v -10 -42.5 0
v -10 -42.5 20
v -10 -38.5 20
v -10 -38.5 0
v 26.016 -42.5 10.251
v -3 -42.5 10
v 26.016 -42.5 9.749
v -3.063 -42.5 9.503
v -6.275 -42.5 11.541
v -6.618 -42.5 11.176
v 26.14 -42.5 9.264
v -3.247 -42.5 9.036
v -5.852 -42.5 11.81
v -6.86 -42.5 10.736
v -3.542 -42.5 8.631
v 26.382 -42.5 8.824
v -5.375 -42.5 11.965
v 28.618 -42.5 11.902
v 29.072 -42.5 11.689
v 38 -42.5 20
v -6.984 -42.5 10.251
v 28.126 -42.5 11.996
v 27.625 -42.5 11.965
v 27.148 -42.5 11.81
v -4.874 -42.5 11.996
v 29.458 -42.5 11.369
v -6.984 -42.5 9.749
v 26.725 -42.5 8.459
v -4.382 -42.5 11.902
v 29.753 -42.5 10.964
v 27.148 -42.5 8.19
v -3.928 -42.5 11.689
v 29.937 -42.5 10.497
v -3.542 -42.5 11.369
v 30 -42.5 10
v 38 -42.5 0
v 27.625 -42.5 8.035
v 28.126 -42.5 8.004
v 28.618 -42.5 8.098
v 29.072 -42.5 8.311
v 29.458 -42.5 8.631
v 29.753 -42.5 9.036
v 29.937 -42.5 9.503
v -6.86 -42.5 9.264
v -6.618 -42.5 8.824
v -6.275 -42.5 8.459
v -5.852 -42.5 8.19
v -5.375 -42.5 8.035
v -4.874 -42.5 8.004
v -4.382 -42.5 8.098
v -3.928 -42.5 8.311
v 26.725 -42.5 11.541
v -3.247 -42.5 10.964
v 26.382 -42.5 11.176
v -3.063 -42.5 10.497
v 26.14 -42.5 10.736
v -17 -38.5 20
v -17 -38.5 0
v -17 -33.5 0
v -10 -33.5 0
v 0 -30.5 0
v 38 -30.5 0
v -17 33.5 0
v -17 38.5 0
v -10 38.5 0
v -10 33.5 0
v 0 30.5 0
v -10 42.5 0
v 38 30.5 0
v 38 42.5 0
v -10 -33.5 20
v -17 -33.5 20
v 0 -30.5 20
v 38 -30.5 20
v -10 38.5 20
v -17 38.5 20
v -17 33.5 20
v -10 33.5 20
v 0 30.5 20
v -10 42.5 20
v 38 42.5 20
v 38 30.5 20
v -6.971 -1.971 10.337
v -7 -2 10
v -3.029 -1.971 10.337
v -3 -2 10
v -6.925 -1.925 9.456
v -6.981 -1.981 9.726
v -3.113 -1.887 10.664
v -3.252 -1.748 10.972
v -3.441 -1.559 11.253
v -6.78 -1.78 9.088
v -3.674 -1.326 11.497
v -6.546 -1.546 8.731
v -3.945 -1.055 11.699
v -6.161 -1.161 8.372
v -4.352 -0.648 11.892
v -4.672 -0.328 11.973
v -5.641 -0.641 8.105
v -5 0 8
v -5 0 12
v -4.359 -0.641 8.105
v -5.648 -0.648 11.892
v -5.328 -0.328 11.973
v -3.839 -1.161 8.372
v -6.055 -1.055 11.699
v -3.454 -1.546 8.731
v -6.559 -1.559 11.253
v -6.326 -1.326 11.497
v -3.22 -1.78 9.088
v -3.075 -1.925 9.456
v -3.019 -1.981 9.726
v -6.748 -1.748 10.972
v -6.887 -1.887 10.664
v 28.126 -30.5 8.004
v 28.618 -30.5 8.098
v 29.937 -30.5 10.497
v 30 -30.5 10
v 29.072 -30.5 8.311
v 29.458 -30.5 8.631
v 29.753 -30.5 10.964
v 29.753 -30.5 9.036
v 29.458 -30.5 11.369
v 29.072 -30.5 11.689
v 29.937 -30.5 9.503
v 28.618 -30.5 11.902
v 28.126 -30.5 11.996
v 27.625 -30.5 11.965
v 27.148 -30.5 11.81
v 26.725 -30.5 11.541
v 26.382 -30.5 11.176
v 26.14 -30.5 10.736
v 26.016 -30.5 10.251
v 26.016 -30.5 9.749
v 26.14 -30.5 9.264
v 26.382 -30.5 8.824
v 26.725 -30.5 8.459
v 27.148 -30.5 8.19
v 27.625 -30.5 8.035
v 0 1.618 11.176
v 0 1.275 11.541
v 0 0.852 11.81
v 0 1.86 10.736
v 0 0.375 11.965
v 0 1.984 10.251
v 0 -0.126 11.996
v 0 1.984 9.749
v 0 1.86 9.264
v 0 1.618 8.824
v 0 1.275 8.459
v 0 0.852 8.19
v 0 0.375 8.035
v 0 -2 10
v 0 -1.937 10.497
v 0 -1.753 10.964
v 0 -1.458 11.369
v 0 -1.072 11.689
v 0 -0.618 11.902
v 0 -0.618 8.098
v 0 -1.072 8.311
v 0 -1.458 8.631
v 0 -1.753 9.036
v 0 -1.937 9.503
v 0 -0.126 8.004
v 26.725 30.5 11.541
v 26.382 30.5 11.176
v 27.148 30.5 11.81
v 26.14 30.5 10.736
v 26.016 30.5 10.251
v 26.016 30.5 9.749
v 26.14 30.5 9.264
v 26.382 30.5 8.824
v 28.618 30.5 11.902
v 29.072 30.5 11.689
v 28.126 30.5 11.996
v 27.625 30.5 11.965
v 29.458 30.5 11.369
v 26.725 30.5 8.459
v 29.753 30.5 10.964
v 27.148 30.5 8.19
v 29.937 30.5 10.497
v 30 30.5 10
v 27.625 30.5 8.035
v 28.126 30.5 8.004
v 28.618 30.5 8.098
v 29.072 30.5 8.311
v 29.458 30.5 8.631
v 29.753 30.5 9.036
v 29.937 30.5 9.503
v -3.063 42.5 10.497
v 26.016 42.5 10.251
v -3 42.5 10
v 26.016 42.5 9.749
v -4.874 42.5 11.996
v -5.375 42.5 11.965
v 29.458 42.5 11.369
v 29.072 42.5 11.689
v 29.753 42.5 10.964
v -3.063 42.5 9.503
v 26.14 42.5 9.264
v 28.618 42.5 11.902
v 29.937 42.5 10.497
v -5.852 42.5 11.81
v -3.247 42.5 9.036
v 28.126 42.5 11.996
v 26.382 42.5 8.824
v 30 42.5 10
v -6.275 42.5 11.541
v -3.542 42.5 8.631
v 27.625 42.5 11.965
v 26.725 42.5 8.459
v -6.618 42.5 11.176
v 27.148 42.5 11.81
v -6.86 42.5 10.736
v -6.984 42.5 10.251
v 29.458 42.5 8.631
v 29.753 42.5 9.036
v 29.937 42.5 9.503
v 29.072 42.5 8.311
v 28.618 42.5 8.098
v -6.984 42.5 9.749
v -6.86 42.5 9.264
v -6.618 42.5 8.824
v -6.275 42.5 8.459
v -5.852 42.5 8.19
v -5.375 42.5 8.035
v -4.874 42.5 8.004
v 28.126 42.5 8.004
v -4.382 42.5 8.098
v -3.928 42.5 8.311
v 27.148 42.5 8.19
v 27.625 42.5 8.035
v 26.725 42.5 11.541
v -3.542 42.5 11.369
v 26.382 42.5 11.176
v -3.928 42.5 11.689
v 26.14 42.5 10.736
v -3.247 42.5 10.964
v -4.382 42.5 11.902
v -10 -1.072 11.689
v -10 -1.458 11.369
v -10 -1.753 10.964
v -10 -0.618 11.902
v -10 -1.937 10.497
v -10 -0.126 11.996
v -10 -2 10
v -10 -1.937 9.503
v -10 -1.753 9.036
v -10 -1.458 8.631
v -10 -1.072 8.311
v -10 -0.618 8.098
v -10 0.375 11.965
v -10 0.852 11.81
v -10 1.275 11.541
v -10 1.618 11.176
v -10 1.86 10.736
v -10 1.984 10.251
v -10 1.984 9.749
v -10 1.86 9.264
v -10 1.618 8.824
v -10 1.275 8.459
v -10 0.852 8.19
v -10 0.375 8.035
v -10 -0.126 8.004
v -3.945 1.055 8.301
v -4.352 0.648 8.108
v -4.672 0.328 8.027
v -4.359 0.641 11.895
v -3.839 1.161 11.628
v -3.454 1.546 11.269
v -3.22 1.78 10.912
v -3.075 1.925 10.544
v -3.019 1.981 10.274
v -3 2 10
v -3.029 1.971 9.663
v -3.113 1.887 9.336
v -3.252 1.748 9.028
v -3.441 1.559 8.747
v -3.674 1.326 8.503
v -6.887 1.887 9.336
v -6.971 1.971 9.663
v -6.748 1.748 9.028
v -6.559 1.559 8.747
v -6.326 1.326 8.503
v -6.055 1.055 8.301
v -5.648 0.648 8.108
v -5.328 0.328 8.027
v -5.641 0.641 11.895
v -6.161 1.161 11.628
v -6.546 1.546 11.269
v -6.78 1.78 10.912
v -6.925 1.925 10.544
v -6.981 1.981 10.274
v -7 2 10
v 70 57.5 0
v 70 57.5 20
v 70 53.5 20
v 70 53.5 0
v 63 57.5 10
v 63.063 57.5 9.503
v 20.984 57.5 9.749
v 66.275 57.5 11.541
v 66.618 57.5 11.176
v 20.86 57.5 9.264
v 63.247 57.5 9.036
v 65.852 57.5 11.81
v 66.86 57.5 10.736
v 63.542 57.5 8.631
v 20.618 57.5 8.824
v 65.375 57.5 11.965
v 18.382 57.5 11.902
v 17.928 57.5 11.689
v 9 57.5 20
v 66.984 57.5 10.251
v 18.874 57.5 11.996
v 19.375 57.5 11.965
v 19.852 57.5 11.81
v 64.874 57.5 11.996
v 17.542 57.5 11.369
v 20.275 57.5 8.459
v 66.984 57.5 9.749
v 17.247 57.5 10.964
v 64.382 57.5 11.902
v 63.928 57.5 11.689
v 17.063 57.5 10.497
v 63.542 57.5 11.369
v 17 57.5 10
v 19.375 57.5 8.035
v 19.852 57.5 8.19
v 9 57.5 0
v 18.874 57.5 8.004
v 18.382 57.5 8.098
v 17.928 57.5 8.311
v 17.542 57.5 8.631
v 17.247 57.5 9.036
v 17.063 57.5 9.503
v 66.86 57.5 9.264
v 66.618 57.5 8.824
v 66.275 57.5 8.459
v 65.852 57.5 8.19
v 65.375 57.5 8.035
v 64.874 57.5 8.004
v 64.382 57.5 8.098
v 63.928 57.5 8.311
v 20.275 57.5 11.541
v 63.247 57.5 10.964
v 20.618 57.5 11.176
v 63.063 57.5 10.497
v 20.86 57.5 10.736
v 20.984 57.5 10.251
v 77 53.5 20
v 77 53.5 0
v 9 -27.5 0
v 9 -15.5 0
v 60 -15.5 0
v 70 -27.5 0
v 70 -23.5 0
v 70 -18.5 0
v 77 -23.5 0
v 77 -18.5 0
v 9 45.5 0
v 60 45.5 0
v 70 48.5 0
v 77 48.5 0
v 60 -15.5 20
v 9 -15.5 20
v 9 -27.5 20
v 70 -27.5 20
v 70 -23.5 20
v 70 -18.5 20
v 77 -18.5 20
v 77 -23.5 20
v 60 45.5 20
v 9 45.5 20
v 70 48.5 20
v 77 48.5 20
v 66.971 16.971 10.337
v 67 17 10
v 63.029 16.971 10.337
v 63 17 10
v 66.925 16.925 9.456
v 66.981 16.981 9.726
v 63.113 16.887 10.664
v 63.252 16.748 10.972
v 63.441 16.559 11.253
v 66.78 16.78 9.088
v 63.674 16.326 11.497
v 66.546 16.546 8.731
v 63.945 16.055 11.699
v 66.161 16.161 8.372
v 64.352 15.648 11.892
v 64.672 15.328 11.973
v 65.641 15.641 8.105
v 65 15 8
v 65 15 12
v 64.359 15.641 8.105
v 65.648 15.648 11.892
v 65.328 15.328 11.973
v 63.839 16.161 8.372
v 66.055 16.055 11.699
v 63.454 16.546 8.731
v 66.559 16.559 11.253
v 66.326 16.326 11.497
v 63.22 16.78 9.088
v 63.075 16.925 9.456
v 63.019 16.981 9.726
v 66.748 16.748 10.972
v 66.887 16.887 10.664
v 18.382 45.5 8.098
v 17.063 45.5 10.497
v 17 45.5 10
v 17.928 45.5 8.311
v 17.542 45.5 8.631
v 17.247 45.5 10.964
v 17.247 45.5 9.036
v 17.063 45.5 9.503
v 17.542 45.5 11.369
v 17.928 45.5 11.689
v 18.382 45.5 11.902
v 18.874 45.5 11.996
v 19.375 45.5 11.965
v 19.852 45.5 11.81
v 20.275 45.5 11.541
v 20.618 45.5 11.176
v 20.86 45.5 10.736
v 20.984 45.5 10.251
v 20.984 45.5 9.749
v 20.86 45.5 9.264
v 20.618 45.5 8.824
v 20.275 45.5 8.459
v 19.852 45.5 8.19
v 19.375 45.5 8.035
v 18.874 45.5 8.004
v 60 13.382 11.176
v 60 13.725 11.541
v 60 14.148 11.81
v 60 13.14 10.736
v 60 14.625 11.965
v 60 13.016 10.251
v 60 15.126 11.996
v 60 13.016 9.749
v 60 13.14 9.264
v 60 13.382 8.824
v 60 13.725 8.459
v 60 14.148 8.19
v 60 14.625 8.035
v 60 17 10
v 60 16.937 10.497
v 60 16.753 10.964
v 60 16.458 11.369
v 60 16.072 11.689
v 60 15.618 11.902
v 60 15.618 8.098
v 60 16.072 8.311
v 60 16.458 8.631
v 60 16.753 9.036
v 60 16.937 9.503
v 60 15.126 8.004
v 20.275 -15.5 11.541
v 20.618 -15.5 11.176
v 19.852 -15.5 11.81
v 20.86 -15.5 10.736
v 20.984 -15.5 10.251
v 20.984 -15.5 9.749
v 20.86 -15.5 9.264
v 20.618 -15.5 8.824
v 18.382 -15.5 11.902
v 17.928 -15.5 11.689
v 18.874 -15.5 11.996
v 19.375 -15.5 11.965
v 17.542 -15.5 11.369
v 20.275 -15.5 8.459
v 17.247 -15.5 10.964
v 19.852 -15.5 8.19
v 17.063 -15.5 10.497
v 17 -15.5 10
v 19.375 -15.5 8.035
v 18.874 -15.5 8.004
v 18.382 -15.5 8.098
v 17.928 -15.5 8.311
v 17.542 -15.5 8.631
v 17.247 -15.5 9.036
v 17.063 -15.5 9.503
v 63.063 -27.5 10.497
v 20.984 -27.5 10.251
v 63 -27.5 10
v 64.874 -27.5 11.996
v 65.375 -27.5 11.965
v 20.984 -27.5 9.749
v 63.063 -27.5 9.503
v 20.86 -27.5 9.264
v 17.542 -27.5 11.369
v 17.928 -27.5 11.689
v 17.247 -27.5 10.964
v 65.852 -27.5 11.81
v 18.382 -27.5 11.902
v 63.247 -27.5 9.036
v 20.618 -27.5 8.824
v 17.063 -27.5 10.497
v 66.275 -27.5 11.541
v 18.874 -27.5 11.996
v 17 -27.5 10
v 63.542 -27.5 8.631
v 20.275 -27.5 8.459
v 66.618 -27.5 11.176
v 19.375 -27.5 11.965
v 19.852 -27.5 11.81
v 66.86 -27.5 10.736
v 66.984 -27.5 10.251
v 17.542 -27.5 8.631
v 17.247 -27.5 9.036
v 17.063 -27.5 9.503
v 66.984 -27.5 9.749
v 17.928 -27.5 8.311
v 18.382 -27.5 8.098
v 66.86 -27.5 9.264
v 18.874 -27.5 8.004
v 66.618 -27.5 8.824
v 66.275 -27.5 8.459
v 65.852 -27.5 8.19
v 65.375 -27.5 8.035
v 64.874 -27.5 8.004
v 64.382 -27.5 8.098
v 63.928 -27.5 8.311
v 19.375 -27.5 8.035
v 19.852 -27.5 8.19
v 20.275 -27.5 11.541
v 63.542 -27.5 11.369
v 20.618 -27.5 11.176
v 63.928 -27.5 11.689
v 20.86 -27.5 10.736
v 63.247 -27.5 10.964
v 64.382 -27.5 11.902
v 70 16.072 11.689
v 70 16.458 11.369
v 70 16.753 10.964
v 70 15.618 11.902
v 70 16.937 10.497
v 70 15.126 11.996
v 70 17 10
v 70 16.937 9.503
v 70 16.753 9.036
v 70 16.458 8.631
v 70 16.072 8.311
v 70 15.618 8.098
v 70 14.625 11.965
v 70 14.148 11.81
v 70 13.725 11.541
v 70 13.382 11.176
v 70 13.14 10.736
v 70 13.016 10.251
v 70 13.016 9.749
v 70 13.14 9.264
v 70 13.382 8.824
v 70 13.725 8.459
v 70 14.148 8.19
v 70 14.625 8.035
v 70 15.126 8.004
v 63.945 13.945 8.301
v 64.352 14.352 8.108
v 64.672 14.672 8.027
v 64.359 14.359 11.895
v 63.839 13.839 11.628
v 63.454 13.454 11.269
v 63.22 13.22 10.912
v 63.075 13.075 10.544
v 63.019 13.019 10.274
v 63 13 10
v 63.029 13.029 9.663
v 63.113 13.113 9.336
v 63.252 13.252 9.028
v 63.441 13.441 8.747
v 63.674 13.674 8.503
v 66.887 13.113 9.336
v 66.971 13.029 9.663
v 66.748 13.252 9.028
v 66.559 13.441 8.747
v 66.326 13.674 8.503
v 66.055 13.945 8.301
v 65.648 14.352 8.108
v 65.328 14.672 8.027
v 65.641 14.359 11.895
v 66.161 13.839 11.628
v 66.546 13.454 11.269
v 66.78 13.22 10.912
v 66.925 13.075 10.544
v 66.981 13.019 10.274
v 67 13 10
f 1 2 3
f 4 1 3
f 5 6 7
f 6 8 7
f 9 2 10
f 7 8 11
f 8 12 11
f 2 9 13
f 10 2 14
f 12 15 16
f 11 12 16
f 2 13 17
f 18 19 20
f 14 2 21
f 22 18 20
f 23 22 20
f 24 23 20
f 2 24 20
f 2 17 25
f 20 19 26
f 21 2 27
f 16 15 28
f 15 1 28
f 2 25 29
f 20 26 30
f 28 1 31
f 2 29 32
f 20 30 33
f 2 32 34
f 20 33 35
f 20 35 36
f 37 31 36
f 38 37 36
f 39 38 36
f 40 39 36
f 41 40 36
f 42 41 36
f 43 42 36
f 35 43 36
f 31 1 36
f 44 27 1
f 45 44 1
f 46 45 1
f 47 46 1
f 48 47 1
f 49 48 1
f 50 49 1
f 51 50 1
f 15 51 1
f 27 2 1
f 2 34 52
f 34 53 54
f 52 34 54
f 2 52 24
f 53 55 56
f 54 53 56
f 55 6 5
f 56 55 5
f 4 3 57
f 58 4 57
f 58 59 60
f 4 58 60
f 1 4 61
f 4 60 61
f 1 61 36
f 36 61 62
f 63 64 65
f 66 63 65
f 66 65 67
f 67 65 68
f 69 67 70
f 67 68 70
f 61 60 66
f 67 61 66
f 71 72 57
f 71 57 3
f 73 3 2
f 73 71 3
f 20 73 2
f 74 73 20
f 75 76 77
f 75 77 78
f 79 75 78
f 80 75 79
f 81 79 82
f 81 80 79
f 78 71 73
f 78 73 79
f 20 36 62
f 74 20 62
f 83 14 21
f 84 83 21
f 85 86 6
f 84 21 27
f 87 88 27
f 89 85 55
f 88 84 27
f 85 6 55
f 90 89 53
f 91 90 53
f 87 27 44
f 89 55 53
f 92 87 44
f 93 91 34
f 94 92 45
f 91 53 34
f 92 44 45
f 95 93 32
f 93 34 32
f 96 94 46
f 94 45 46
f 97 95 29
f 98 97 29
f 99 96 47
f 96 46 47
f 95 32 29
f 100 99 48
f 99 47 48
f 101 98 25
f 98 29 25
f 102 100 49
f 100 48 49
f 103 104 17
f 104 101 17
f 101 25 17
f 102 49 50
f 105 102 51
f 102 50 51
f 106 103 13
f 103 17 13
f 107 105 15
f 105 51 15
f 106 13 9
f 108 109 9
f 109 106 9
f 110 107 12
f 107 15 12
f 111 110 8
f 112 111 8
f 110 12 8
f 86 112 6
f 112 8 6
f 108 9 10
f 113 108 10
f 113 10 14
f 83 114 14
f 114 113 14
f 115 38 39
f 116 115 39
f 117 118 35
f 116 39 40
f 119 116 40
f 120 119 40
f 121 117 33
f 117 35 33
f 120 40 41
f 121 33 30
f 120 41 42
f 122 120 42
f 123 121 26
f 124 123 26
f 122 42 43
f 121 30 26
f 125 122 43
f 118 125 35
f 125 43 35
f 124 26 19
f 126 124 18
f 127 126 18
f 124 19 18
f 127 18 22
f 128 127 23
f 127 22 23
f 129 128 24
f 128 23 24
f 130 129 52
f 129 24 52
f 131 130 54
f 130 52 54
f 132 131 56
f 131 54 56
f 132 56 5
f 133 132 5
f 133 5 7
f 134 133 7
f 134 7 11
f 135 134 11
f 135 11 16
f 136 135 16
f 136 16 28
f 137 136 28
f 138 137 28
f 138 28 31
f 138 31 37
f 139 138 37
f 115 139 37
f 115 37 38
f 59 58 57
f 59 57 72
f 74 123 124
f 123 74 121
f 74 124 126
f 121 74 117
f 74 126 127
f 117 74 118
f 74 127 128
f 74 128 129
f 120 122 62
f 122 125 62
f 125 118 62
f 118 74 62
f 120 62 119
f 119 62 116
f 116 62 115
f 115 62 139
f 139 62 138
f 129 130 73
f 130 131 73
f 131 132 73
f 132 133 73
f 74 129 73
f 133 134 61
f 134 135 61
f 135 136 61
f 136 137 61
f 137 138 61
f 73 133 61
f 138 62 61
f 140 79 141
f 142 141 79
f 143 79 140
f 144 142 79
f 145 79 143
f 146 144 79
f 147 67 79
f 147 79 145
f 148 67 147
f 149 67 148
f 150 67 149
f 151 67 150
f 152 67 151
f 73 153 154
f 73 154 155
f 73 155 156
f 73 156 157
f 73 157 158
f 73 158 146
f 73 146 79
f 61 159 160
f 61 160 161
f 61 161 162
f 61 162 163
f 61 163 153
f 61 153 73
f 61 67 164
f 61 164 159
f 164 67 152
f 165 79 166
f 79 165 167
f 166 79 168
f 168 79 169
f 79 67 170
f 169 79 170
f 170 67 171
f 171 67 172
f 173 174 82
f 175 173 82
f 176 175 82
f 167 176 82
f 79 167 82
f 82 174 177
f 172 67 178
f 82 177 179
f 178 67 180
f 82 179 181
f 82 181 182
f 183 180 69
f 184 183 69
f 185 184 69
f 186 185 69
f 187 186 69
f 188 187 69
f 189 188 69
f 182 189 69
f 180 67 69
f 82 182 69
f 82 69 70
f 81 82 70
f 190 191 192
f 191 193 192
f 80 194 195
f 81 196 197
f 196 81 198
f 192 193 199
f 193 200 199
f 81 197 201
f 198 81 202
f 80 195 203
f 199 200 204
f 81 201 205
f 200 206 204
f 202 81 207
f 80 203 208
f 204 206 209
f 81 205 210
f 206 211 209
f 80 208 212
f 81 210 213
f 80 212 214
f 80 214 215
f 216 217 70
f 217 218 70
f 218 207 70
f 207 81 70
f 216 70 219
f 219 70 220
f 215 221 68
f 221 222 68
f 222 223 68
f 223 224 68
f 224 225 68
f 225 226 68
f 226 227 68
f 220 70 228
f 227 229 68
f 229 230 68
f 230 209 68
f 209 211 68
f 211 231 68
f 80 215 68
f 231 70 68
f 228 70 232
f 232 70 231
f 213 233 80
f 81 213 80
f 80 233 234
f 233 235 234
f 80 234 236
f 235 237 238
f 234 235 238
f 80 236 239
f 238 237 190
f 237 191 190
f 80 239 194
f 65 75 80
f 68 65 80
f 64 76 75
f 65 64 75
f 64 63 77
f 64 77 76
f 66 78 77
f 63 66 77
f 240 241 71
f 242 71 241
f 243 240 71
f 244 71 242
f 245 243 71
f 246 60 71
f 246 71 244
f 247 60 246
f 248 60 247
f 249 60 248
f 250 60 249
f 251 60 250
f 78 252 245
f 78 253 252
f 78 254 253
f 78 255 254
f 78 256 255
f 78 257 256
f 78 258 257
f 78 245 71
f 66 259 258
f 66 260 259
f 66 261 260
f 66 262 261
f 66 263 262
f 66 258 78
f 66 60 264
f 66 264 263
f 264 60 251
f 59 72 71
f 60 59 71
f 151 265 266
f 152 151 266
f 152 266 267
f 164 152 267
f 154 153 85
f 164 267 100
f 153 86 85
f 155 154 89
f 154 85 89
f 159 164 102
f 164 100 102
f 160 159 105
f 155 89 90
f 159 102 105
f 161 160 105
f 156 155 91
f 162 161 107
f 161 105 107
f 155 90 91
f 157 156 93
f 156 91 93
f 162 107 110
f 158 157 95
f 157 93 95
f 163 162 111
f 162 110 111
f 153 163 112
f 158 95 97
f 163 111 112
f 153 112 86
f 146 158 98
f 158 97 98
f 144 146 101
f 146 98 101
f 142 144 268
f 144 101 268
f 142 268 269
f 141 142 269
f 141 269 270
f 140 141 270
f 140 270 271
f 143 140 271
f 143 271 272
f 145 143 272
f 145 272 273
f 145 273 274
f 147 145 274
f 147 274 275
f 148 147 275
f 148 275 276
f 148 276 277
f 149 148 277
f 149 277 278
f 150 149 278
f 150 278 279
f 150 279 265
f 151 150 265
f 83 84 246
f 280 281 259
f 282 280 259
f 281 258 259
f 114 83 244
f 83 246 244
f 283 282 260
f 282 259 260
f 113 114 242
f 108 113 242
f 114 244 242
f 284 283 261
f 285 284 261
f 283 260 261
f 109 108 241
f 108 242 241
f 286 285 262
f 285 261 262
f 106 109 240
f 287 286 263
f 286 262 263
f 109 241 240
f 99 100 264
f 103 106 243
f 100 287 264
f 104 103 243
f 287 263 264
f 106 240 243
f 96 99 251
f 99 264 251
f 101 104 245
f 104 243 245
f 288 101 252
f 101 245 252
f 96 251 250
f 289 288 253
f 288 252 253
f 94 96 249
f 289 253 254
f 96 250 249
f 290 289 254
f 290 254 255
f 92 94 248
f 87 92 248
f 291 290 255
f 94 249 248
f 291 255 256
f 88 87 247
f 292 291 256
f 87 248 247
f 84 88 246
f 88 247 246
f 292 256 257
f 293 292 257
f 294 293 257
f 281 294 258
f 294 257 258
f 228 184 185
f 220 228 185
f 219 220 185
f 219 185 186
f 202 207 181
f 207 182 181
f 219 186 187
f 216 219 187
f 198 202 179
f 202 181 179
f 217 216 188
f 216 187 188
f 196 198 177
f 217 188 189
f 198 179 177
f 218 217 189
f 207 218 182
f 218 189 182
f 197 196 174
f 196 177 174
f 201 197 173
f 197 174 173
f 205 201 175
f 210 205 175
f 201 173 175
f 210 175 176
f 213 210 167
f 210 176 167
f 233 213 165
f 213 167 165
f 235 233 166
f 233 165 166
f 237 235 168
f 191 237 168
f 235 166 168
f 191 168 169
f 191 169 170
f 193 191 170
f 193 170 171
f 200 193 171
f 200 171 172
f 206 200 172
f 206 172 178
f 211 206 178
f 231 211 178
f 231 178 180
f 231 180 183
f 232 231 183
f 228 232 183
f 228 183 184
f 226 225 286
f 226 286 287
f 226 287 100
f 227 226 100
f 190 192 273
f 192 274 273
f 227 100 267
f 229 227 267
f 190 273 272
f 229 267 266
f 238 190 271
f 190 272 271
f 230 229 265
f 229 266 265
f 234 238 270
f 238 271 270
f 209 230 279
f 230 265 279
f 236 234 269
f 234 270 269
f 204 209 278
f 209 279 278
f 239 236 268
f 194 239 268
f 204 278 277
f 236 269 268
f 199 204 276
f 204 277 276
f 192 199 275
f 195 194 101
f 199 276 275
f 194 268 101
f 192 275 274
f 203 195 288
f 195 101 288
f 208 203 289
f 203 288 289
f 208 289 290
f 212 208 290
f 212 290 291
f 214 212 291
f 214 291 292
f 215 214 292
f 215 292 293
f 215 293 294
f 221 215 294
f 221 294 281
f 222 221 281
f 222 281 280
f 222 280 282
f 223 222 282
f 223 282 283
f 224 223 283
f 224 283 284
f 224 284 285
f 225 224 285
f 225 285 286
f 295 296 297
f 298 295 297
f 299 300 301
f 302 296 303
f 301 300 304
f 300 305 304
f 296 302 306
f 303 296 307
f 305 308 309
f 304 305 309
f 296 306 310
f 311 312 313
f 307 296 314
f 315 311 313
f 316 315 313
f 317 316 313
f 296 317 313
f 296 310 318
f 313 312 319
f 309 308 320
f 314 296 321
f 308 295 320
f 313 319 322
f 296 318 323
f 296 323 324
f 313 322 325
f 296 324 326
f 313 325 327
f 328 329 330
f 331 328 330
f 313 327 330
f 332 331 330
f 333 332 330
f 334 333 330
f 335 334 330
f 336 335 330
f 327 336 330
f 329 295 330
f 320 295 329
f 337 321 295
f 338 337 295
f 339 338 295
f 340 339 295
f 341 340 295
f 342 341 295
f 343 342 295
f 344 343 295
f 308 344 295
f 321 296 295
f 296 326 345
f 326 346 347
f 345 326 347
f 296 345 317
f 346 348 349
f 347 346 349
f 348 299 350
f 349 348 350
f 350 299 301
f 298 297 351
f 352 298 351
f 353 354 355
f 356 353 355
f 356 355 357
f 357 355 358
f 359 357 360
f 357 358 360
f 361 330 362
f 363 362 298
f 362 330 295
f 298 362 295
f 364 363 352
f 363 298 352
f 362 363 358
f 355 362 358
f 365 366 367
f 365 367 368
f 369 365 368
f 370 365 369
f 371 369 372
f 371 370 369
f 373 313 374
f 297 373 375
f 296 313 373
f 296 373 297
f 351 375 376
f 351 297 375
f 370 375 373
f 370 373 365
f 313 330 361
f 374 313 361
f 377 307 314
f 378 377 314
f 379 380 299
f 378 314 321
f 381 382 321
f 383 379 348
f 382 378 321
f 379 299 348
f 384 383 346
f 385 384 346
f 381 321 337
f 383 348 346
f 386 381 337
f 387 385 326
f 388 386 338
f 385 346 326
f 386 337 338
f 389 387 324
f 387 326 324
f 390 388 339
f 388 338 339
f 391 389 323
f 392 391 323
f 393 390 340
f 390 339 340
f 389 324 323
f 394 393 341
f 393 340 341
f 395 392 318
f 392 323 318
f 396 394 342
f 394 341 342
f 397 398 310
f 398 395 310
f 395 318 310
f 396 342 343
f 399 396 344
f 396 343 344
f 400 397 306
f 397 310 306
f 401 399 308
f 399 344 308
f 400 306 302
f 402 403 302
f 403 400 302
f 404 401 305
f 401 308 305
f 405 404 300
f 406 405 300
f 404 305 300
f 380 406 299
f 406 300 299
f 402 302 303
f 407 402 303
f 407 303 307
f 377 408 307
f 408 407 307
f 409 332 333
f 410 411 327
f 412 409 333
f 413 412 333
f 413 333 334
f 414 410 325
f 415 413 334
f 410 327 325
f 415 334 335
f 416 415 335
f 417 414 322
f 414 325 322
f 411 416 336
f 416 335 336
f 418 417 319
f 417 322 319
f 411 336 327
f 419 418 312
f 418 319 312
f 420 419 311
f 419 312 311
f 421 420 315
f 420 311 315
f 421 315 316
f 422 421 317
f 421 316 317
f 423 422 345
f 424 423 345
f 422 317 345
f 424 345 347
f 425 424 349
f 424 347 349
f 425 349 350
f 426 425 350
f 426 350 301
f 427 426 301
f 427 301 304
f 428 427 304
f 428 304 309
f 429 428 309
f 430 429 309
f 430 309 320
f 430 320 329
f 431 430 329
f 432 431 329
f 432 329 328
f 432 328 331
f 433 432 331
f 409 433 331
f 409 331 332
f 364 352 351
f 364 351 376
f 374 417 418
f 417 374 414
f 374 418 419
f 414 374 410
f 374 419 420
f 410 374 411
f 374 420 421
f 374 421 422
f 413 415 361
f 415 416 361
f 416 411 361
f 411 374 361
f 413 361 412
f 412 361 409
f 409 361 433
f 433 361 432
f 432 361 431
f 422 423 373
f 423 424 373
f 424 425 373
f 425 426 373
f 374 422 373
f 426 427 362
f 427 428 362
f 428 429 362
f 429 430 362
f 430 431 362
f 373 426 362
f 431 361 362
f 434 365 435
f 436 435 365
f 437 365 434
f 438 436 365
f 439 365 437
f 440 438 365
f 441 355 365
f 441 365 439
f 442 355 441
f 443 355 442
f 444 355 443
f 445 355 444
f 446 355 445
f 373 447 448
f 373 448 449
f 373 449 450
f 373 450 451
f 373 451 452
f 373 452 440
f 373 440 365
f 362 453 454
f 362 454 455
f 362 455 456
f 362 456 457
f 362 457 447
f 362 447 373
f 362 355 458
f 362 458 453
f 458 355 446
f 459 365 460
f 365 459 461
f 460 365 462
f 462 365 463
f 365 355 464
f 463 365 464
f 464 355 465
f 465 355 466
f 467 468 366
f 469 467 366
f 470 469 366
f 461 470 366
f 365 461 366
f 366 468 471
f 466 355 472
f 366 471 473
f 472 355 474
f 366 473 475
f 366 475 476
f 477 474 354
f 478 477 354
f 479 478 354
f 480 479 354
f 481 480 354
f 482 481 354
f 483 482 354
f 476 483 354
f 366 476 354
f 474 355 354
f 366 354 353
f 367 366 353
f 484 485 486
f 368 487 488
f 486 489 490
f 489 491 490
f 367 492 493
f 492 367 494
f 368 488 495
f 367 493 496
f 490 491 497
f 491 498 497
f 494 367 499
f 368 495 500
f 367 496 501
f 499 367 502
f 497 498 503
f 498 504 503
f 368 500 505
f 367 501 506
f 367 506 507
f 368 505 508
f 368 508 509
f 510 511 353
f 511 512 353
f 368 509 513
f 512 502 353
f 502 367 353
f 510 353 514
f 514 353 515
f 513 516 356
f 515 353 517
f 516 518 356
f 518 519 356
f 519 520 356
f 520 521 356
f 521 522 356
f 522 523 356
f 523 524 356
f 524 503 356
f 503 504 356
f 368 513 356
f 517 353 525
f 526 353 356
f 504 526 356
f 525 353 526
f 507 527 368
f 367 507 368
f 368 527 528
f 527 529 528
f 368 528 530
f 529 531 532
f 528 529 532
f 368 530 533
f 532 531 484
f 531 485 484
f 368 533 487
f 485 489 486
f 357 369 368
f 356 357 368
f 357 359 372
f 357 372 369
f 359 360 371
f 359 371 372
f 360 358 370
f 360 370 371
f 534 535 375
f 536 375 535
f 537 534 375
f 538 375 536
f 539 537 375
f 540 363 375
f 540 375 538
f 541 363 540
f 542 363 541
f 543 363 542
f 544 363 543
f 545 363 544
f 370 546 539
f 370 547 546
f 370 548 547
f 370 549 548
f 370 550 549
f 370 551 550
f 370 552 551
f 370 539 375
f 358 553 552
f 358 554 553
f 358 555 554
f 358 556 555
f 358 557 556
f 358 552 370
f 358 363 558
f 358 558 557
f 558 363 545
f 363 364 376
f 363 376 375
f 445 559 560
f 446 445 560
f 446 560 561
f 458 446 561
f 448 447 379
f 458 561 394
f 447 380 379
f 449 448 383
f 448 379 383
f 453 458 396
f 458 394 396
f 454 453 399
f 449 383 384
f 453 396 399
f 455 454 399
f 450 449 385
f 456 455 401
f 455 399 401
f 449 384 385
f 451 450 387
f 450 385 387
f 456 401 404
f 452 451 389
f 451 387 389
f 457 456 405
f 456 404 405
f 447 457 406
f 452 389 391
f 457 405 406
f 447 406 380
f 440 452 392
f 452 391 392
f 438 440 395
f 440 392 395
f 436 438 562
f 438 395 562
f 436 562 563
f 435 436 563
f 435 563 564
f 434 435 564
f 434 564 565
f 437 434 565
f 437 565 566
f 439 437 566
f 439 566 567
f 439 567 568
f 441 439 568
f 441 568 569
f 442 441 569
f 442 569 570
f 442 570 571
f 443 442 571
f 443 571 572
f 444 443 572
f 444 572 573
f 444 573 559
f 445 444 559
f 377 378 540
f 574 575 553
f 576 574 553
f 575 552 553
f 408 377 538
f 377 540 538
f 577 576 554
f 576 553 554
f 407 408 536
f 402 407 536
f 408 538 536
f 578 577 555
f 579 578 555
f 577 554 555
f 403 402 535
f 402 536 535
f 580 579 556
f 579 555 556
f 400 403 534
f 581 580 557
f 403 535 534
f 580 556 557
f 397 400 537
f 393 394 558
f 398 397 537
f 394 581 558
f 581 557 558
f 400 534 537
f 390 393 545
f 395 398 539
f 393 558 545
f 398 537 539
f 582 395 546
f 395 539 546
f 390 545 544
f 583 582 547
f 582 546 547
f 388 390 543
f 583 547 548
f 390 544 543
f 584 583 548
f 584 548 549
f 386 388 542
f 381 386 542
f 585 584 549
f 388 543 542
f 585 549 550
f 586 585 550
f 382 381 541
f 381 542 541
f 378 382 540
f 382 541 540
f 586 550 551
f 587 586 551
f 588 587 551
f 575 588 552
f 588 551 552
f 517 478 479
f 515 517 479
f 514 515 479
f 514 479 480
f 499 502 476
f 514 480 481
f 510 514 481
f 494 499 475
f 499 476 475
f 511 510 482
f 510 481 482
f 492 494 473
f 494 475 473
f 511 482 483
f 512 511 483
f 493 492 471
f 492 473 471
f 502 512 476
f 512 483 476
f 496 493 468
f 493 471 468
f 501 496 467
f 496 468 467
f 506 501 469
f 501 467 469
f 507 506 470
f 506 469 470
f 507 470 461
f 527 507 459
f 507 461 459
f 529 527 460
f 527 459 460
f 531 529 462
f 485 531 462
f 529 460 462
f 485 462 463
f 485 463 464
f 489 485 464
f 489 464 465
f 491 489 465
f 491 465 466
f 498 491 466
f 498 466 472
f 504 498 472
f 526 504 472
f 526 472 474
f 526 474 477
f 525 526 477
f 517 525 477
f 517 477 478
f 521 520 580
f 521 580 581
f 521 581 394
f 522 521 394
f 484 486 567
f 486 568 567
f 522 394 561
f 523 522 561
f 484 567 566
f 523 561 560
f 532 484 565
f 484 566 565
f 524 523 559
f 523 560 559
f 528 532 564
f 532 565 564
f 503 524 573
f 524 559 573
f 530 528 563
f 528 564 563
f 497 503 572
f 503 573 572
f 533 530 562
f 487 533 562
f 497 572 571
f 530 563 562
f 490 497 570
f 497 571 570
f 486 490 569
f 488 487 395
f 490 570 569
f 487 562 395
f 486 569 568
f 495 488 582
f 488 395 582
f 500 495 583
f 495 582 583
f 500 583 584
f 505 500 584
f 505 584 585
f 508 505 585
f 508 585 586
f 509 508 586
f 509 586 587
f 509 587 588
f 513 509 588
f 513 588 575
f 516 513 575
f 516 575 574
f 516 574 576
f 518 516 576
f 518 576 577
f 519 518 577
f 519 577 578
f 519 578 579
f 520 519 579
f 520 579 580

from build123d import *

# Parameters (mm, degrees)
PAD_DEPTH       = 20
SKETCH004_R     = 2
POCKET002_DEPTH = 48.001
SKETCH005_R     = 2
POCKET003_DEPTH = 85.001
PAD001_DEPTH    = 20
SKETCH007_R     = 2
POCKET004_DEPTH = 61.001
SKETCH008_R     = 2
POCKET005_DEPTH = 85.001


with BuildPart() as soporte_agujero_superior_lateral:
    # Sketch → Pad (new body)
    with BuildSketch(Plane.XY):
        Polygon((-10, -42.5), (38, -42.5), (38, -30.5), (0, -30.5), (0, 30.5), (38, 30.5), (38, 42.5), (-10, 42.5), (-10, 38.5), (-17, 38.5), (-17, 33.5), (-10, 33.5), (-10, -33.5), (-17, -33.5), (-17, -38.5), (-10, -38.5), align=None)
    extrude(amount=PAD_DEPTH)

    # Sketch004 → Pocket002 (cut, through all)
    with BuildSketch(Plane(origin=(-10, 0, 0), x_dir=(0, -1, 0), z_dir=(-1, 0, 0))):
        with Locations((0, 10)):
            Circle(SKETCH004_R)
    extrude(amount=-POCKET002_DEPTH, mode=Mode.SUBTRACT)

    # Sketch005 → Pocket003 (cut, through all)
    with BuildSketch(Plane.XZ.offset(42.5)):
        with Locations((-5, 10)):
            Circle(SKETCH005_R)
        with Locations((28, 10)):
            Circle(SKETCH005_R)
    extrude(amount=-POCKET003_DEPTH, mode=Mode.SUBTRACT)


with BuildPart() as soporte_agujero_superior_lateral001:
    # Sketch006 → Pad001 (new body)
    with BuildSketch(Plane(origin=(60, 15, 0), x_dir=(-1, 0, 0), z_dir=(0, 0, 1))):
        Polygon((-10, -42.5), (51, -42.5), (51, -30.5), (0, -30.5), (0, 30.5), (51, 30.5), (51, 42.5), (-10, 42.5), (-10, 38.5), (-17, 38.5), (-17, 33.5), (-10, 33.5), (-10, -33.5), (-17, -33.5), (-17, -38.5), (-10, -38.5), align=None)
    extrude(amount=PAD001_DEPTH)

    # Sketch007 → Pocket004 (cut, through all)
    with BuildSketch(Plane(origin=(70, 15, 0), x_dir=(0, 1, 0), z_dir=(1, 0, 0))):
        with Locations((0, 10)):
            Circle(SKETCH007_R)
    extrude(amount=-POCKET004_DEPTH, mode=Mode.SUBTRACT)

    # Sketch008 → Pocket005 (cut, through all)
    with BuildSketch(Plane(origin=(60, 57.5, 0), x_dir=(-1, 0, 0), z_dir=(0, 1, 0))):
        with Locations((-5, 10)):
            Circle(SKETCH008_R)
        with Locations((41, 10)):
            Circle(SKETCH008_R)
    extrude(amount=-POCKET005_DEPTH, mode=Mode.SUBTRACT)


solid = Compound([soporte_agujero_superior_lateral.part, soporte_agujero_superior_lateral001.part])
